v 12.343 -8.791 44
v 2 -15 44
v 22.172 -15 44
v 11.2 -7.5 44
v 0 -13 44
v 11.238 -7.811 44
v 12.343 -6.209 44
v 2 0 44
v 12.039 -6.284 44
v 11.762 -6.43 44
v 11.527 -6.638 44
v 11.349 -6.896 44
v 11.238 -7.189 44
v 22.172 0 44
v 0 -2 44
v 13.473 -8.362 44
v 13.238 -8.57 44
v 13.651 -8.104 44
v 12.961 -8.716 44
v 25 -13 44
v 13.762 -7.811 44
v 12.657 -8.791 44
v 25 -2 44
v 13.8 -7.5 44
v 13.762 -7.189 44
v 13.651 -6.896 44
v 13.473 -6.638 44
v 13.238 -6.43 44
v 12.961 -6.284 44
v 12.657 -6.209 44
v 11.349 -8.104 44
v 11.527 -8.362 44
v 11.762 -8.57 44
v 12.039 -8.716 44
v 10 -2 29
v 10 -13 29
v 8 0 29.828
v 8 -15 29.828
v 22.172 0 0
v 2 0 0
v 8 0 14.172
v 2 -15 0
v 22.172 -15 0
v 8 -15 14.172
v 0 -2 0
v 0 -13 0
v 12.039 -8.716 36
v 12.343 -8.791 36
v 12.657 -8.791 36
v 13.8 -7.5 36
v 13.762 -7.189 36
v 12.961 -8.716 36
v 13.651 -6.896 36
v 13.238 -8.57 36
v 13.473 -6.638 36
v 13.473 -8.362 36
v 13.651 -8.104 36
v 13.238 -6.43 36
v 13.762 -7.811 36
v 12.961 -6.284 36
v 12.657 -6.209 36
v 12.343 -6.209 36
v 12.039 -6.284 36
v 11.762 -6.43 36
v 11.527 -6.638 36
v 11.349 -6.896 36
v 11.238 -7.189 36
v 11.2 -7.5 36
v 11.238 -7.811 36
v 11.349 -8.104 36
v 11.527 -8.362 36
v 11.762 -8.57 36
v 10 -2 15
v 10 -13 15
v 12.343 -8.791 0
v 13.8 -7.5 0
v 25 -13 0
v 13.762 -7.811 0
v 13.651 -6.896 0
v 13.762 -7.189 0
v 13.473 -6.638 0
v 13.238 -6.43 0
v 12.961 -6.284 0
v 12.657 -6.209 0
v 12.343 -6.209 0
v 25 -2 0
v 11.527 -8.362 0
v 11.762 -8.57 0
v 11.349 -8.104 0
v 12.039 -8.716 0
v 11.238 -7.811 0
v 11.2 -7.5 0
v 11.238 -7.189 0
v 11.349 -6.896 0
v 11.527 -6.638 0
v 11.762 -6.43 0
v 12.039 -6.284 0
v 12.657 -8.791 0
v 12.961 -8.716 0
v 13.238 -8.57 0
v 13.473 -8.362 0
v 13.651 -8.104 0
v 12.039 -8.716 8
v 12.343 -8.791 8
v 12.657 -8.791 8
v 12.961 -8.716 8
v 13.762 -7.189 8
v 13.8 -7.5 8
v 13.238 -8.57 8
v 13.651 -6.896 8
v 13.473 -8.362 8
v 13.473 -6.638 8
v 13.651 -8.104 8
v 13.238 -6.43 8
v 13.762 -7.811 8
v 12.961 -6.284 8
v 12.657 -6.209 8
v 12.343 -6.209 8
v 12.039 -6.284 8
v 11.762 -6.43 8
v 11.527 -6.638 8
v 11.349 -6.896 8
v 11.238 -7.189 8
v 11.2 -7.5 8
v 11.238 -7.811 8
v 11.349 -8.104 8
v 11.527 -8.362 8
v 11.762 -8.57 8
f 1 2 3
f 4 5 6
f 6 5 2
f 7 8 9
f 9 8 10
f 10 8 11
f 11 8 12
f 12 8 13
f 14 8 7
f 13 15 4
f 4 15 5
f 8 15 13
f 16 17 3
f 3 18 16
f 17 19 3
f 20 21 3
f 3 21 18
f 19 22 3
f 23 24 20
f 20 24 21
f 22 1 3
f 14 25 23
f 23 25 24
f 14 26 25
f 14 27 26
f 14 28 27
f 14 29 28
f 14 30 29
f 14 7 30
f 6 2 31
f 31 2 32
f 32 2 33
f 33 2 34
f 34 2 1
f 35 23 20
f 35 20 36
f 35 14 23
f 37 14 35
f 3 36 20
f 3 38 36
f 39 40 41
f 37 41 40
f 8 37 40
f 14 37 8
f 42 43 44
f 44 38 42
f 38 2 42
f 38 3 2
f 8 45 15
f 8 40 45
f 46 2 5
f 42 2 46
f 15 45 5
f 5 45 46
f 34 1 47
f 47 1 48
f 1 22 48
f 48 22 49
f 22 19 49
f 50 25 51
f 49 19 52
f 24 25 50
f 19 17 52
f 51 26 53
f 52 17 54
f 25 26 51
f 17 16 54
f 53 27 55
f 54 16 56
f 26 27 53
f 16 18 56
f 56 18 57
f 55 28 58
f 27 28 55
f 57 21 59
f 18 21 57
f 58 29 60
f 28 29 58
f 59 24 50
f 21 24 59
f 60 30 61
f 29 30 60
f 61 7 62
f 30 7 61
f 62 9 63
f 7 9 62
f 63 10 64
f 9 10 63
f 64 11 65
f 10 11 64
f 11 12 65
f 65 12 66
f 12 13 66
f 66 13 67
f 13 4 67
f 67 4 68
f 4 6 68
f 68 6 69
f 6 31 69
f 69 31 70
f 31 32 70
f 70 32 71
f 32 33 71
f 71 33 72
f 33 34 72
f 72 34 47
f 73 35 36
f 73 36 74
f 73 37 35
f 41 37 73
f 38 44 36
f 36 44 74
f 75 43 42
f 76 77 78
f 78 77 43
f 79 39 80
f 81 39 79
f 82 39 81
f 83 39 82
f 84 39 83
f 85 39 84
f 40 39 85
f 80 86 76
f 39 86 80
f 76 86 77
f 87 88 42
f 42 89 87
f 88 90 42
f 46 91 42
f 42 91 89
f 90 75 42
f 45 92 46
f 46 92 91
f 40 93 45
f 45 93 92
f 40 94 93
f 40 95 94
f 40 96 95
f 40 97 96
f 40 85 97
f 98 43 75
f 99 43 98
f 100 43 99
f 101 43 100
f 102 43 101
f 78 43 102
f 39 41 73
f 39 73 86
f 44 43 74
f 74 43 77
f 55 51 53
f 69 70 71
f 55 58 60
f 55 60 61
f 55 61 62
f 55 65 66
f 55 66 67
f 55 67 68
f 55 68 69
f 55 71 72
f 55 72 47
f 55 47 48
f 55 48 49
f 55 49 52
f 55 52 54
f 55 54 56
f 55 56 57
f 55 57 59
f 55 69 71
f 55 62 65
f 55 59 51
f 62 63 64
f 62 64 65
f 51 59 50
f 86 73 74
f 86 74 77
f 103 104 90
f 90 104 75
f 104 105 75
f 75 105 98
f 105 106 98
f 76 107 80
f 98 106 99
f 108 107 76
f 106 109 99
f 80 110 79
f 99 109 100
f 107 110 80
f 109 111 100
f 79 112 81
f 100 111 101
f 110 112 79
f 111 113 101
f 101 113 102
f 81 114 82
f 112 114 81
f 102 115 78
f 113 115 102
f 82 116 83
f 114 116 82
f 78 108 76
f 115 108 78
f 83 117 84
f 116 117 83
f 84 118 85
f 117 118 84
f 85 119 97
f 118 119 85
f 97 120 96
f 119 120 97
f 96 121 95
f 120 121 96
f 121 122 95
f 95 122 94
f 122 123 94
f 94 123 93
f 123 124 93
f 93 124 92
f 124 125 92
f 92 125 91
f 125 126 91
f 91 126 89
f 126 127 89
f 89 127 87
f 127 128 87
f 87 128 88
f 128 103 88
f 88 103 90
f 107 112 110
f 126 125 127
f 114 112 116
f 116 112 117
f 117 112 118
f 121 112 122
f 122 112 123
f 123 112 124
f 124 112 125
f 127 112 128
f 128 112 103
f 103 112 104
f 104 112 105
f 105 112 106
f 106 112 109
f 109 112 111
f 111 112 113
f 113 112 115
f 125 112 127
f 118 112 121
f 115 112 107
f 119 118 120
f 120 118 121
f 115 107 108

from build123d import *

# Parameters (mm, degrees)
CYLINDER_R        = 1.3
CYLINDER_DEPTH    = 8
CYLINDER001_R     = 1.3
CYLINDER001_DEPTH = 8
EXTRUDE_DEPTH     = 15
CHAMFER_SIZE      = 2


with BuildPart() as cylinder000:
    # Cylinder → Cylinder (new body)
    with BuildSketch(Plane(origin=(12.5, -7.5, 0), x_dir=(1, 0, 0), z_dir=(0, 0, 1))):
        Circle(CYLINDER_R)
    extrude(amount=CYLINDER_DEPTH)


with BuildPart() as fusion:
    # Cylinder001 → Cylinder001 (new body)
    with BuildSketch(Plane(origin=(12.5, -7.5, 36), x_dir=(1, 0, 0), z_dir=(0, 0, 1))):
        Circle(CYLINDER001_R)
    extrude(amount=CYLINDER001_DEPTH)

    # Fusion: union Cylinder000
    add(cylinder000.part)


with BuildPart() as cut:
    # Sketch → Extrude (new body)
    with BuildSketch(Plane.XZ):
        Polygon((0, 0), (25, 0), (10, 15), (10, 29), (25, 44), (0, 44), align=None)
    extrude(amount=EXTRUDE_DEPTH)

    # Chamfer
    chamfer_edges = [cut.edges().sort_by_distance(p)[0] for p in [
        (0, 0, 22),
        (0, -15, 22),
        (17.5, 0, 7.5),
        (17.5, -15, 7.5),
        (10, 0, 22),
        (10, -15, 22),
        (17.5, 0, 36.5),
        (17.5, -15, 36.5),
    ]]
    chamfer(chamfer_edges, length=CHAMFER_SIZE)

    # Cut: cut Fusion
    add(fusion.part, mode=Mode.SUBTRACT)


solid = cut.part
